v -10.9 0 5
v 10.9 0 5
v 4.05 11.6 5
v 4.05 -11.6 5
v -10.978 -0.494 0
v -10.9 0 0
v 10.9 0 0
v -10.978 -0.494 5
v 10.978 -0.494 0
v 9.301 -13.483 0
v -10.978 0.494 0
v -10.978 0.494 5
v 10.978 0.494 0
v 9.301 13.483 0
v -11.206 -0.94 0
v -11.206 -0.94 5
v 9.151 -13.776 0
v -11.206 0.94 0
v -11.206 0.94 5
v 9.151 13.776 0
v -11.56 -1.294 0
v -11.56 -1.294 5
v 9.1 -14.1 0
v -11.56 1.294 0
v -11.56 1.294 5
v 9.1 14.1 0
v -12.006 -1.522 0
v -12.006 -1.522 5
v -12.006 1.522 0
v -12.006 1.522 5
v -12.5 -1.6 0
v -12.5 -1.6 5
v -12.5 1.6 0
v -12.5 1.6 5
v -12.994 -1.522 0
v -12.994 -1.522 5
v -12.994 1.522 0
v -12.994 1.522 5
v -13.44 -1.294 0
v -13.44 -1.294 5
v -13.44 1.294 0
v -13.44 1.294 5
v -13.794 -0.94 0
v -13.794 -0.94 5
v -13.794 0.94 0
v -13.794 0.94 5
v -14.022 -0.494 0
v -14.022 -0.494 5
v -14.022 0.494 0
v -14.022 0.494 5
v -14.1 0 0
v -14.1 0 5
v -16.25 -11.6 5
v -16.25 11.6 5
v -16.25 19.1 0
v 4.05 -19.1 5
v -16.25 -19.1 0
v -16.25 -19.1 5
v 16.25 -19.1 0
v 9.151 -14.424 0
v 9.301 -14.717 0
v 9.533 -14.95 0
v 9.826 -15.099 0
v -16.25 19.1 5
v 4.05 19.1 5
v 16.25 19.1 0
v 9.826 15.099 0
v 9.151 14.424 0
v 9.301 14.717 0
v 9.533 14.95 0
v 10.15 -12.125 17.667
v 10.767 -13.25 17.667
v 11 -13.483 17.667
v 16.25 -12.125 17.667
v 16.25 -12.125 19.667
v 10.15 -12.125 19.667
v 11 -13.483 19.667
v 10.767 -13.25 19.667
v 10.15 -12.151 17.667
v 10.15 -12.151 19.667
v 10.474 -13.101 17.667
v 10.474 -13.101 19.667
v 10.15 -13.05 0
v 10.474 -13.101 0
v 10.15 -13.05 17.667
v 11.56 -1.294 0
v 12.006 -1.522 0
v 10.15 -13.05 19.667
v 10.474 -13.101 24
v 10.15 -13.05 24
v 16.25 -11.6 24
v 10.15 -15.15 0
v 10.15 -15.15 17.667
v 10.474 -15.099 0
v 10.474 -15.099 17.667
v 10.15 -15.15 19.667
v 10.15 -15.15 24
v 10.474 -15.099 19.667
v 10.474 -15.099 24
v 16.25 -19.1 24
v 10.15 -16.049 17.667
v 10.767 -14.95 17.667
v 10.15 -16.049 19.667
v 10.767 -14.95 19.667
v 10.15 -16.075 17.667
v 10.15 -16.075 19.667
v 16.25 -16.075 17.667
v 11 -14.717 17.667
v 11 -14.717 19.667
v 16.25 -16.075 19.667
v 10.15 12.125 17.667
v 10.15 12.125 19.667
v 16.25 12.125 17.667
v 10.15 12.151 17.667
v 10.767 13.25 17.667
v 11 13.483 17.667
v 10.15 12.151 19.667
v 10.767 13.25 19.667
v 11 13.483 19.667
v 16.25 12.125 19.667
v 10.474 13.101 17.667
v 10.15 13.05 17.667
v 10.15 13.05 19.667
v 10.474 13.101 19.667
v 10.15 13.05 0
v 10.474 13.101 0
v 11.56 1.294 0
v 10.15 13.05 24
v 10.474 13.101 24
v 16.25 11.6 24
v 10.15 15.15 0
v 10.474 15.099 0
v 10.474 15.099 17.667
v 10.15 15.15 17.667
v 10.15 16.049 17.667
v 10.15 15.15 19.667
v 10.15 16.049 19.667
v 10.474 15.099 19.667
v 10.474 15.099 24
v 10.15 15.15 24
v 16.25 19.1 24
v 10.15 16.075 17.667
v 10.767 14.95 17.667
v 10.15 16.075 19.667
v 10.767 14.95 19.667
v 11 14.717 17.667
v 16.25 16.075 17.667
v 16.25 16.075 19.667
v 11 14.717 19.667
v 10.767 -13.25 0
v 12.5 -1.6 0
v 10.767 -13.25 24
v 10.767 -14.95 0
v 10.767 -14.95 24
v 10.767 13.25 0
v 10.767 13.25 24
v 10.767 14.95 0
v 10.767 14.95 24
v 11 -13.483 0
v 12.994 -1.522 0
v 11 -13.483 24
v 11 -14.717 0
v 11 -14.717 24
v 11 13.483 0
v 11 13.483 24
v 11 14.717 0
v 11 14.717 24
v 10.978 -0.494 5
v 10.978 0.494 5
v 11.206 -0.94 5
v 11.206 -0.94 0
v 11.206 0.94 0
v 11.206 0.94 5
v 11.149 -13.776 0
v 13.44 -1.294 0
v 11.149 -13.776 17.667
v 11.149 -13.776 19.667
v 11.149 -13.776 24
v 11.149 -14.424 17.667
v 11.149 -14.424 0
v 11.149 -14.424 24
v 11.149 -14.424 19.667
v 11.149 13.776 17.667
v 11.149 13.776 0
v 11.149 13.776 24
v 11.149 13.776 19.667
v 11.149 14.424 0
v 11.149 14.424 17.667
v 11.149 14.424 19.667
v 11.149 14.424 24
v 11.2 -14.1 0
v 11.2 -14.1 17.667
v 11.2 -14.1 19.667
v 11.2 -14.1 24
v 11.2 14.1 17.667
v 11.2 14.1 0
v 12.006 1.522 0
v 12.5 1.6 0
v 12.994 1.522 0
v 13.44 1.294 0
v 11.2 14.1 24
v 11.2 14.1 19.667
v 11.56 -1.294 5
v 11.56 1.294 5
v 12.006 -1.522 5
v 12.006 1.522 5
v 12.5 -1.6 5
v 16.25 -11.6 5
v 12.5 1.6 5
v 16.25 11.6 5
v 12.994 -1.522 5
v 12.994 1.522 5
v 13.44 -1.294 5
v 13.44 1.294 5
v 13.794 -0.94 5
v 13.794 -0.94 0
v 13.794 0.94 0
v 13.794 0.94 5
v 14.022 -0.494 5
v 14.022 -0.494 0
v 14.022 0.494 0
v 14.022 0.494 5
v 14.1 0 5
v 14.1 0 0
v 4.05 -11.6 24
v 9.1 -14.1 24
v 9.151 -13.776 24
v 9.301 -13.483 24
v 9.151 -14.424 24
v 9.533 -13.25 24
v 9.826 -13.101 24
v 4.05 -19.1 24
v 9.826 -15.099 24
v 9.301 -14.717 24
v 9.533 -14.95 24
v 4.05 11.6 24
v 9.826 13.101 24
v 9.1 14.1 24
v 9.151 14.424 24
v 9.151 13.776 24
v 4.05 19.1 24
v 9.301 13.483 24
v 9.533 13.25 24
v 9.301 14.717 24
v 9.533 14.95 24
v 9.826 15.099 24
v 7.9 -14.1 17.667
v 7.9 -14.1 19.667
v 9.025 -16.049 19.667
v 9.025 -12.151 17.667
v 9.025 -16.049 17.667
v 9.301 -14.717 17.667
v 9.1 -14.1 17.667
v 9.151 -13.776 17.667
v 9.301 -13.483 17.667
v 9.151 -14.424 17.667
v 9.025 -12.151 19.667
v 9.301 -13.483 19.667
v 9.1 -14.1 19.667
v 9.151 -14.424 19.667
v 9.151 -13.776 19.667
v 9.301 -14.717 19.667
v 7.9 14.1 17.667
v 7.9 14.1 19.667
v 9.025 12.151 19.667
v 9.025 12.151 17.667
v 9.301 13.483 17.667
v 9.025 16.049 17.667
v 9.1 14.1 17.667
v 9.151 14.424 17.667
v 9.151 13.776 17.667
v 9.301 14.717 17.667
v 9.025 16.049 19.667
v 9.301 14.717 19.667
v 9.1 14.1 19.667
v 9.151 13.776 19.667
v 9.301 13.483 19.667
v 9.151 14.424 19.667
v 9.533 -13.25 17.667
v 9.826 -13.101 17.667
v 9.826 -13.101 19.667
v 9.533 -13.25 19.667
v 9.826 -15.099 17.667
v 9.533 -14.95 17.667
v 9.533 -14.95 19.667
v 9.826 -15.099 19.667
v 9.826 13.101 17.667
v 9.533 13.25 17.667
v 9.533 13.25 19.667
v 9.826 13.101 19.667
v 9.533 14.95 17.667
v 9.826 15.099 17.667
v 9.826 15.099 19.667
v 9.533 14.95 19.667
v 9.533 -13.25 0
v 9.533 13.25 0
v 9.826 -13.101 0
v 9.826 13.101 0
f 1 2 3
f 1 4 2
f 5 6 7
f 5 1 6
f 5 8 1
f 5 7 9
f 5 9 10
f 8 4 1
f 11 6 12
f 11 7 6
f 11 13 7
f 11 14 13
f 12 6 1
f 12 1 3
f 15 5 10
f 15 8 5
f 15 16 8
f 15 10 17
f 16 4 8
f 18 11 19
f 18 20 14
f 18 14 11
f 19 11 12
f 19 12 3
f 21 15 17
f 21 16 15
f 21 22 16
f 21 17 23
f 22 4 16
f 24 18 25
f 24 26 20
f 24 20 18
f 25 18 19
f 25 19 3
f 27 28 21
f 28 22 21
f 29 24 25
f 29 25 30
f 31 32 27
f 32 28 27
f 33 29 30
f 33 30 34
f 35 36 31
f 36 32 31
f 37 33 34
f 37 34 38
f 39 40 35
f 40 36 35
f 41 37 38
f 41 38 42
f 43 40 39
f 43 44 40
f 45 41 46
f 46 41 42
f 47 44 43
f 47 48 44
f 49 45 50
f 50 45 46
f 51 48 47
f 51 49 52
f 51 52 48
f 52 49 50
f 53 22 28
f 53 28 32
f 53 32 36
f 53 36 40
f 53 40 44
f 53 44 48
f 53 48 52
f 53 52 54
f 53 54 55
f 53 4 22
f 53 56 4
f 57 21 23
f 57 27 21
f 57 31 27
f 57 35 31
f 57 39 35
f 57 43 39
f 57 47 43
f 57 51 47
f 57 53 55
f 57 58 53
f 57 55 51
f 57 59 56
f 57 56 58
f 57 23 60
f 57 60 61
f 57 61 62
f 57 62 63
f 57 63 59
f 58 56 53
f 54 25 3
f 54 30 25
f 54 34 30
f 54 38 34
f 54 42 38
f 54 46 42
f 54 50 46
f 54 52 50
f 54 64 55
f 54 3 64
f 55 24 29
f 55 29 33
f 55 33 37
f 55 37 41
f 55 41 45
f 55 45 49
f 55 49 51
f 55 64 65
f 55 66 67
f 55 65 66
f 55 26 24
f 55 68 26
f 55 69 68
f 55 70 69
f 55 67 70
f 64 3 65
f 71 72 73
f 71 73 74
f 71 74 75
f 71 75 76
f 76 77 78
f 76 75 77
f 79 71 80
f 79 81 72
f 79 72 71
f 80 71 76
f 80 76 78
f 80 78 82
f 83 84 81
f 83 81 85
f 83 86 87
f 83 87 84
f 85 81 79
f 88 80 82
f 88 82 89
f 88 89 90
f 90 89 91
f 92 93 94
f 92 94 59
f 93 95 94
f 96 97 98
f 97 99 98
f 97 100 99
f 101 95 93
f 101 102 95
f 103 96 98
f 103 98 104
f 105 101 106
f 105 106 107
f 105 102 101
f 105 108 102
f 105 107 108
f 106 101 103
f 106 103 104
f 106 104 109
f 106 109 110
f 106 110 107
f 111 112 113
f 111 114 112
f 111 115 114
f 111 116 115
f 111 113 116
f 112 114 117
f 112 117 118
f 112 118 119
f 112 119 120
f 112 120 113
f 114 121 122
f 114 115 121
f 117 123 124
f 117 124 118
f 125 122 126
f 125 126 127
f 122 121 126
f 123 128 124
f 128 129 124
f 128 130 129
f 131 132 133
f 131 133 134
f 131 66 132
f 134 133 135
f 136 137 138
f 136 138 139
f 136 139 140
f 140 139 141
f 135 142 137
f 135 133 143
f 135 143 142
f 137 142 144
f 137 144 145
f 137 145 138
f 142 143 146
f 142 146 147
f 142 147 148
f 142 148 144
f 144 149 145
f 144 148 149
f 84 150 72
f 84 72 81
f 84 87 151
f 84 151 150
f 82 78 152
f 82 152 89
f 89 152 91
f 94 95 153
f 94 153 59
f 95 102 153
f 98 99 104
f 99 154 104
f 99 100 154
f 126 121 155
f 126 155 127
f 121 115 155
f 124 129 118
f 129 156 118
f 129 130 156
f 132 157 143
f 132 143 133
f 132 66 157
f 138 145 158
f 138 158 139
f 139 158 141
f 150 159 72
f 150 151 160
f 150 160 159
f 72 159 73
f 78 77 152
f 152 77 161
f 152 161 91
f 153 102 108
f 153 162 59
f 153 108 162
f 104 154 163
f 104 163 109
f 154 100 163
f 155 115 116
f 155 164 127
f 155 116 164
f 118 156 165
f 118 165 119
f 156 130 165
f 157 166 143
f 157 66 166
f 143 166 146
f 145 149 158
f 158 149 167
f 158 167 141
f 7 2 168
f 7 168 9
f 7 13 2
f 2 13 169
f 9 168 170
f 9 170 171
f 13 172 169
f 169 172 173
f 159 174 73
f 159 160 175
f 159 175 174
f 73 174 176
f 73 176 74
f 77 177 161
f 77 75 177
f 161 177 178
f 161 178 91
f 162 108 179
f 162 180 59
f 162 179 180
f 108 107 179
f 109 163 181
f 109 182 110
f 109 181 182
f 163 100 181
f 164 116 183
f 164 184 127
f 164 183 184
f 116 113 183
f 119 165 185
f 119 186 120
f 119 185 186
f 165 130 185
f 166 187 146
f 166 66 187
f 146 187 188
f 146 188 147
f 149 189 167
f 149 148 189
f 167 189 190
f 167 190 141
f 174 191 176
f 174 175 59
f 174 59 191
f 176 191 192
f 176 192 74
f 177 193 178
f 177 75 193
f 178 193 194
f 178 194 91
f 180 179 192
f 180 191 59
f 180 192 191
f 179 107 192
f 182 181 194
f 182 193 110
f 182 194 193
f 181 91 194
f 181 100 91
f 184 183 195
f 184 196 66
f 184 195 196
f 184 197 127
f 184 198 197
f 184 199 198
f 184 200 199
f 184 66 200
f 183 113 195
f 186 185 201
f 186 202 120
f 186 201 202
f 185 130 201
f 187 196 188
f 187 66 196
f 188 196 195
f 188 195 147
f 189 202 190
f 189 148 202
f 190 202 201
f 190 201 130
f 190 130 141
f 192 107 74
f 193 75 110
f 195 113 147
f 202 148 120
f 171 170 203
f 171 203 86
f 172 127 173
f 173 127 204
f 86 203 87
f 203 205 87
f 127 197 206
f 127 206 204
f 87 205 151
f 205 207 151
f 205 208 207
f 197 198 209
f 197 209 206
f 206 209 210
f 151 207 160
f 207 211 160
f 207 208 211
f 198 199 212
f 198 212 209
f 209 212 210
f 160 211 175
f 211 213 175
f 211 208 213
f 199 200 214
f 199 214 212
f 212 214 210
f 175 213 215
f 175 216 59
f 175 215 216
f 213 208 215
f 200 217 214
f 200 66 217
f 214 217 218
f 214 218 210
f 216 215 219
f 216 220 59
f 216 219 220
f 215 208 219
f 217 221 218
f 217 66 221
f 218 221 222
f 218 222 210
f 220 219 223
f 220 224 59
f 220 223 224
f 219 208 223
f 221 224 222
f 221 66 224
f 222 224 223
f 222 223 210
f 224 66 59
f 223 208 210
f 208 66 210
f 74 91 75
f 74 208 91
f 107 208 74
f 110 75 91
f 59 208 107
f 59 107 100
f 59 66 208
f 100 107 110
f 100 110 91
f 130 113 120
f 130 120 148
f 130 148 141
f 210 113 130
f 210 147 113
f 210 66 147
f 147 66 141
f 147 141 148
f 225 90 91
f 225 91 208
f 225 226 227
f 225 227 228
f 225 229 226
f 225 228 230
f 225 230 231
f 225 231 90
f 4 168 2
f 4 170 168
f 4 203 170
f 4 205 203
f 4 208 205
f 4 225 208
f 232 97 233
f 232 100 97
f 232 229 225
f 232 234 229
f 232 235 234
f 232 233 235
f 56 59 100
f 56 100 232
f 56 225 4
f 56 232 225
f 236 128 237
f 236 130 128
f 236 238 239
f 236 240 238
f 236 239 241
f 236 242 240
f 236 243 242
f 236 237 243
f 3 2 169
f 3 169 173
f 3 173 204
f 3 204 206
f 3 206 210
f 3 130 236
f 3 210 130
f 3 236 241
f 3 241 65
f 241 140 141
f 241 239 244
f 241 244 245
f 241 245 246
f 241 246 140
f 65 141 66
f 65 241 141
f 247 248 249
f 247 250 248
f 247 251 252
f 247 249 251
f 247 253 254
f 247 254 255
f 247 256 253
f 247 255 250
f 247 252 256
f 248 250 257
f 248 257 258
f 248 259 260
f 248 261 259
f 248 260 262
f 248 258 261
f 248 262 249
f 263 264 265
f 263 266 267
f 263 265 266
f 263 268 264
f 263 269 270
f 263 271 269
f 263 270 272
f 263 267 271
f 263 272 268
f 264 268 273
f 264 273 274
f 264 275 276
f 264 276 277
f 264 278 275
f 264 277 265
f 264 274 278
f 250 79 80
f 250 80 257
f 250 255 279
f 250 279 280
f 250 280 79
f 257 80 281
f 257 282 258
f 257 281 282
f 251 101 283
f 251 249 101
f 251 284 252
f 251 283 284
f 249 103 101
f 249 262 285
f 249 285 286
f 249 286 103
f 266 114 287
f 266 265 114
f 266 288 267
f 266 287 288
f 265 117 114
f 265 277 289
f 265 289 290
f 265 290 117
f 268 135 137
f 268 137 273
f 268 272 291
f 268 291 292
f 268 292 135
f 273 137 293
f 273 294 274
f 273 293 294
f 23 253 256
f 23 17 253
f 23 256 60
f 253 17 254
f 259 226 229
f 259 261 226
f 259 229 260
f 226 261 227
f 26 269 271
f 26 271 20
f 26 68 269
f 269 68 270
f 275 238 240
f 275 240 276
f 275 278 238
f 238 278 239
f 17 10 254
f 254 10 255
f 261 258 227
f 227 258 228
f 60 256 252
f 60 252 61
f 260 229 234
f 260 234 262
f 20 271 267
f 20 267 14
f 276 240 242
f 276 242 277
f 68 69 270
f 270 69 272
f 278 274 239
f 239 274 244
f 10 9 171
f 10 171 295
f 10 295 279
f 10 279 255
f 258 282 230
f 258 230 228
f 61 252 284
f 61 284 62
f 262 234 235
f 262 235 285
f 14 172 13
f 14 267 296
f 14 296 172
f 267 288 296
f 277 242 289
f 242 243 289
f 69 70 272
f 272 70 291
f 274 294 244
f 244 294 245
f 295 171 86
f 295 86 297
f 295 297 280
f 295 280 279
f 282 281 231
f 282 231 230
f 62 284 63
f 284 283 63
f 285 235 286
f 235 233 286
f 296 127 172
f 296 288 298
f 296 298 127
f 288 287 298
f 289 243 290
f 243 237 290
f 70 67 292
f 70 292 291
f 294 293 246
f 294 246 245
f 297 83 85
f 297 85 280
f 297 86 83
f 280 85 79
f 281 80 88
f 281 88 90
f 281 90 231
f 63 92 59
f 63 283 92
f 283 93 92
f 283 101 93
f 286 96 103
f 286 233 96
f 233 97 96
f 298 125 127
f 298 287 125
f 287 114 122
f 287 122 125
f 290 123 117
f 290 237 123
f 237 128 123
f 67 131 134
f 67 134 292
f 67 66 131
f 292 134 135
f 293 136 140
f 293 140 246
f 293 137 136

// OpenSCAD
include <../parameters.scad>



module 888_1033() {

    screw_height = 5;
    servo_height = 13+DS313MG_X+DS313MG_G;
    difference([0, 0, 0]) {
        union() {
            translate([0, 0, screw_height/2])
                cube([beam_socket_width*1.3, DS313MG_J, screw_height], center=true);

            translate([beam_socket_width*1.3/2-DS313MG_A, -DS313MG_J/2, screw_height])
                cube([DS313MG_A, DS313MG_J, servo_height-screw_height]);
        }

        translate([beam_socket_width/-2, 0, 0])
            cylinder(d=M3_screw_diameter, h=screw_height*5, $fn=20, center=true);

        translate([beam_socket_width/2, 0, 0])
            cylinder(d=M3_screw_diameter, h=screw_height*5, $fn=20, center=true);

        translate([0, 0, screw_height+(servo_height-screw_height)/2+0.05])
            cube([beam_socket_width*2, DS313MG_M, servo_height-screw_height+0.1], center=true);

        translate([beam_socket_width*1.3/2-DS313MG_A/2, DS313MG_M/2+(DS313MG_B-DS313MG_E), 0])
            cylinder(d=M2_screw_diameter, h=100, center=true, $fn=20);

        translate([beam_socket_width*1.3/2-DS313MG_A/2, DS313MG_M/-2-(DS313MG_B-DS313MG_E), 0])
            cylinder(d=M2_screw_diameter, h=100, center=true, $fn=20);

        
        translate([beam_socket_width*1.3/2-DS313MG_A/2, DS313MG_M/2+(DS313MG_B-DS313MG_E), servo_height-(servo_height-screw_height)*1/3])
            cylinder(d=M2_nut_diameter, $fn=6, h=M2_nut_height);

        translate([beam_socket_width*1.3/2-DS313MG_A/2, DS313MG_M/-2-(DS313MG_B-DS313MG_E), servo_height-(servo_height-screw_height)*1/3])
            cylinder(d=M2_nut_diameter, $fn=6, h=M2_nut_height);

        translate([beam_socket_width*1.3/2-DS313MG_A/2, DS313MG_M/2+(DS313MG_B-DS313MG_E)-M2_nut_pocket/2, servo_height-(servo_height-screw_height)*1/3])
            cube([20, M2_nut_pocket, M2_nut_height]);

        translate([beam_socket_width*1.3/2-DS313MG_A/2, DS313MG_M/-2-(DS313MG_B-DS313MG_E)-M2_nut_pocket/2, servo_height-(servo_height-screw_height)*1/3])
            cube([20, M2_nut_pocket, M2_nut_height]);
    }
}

888_1033();
